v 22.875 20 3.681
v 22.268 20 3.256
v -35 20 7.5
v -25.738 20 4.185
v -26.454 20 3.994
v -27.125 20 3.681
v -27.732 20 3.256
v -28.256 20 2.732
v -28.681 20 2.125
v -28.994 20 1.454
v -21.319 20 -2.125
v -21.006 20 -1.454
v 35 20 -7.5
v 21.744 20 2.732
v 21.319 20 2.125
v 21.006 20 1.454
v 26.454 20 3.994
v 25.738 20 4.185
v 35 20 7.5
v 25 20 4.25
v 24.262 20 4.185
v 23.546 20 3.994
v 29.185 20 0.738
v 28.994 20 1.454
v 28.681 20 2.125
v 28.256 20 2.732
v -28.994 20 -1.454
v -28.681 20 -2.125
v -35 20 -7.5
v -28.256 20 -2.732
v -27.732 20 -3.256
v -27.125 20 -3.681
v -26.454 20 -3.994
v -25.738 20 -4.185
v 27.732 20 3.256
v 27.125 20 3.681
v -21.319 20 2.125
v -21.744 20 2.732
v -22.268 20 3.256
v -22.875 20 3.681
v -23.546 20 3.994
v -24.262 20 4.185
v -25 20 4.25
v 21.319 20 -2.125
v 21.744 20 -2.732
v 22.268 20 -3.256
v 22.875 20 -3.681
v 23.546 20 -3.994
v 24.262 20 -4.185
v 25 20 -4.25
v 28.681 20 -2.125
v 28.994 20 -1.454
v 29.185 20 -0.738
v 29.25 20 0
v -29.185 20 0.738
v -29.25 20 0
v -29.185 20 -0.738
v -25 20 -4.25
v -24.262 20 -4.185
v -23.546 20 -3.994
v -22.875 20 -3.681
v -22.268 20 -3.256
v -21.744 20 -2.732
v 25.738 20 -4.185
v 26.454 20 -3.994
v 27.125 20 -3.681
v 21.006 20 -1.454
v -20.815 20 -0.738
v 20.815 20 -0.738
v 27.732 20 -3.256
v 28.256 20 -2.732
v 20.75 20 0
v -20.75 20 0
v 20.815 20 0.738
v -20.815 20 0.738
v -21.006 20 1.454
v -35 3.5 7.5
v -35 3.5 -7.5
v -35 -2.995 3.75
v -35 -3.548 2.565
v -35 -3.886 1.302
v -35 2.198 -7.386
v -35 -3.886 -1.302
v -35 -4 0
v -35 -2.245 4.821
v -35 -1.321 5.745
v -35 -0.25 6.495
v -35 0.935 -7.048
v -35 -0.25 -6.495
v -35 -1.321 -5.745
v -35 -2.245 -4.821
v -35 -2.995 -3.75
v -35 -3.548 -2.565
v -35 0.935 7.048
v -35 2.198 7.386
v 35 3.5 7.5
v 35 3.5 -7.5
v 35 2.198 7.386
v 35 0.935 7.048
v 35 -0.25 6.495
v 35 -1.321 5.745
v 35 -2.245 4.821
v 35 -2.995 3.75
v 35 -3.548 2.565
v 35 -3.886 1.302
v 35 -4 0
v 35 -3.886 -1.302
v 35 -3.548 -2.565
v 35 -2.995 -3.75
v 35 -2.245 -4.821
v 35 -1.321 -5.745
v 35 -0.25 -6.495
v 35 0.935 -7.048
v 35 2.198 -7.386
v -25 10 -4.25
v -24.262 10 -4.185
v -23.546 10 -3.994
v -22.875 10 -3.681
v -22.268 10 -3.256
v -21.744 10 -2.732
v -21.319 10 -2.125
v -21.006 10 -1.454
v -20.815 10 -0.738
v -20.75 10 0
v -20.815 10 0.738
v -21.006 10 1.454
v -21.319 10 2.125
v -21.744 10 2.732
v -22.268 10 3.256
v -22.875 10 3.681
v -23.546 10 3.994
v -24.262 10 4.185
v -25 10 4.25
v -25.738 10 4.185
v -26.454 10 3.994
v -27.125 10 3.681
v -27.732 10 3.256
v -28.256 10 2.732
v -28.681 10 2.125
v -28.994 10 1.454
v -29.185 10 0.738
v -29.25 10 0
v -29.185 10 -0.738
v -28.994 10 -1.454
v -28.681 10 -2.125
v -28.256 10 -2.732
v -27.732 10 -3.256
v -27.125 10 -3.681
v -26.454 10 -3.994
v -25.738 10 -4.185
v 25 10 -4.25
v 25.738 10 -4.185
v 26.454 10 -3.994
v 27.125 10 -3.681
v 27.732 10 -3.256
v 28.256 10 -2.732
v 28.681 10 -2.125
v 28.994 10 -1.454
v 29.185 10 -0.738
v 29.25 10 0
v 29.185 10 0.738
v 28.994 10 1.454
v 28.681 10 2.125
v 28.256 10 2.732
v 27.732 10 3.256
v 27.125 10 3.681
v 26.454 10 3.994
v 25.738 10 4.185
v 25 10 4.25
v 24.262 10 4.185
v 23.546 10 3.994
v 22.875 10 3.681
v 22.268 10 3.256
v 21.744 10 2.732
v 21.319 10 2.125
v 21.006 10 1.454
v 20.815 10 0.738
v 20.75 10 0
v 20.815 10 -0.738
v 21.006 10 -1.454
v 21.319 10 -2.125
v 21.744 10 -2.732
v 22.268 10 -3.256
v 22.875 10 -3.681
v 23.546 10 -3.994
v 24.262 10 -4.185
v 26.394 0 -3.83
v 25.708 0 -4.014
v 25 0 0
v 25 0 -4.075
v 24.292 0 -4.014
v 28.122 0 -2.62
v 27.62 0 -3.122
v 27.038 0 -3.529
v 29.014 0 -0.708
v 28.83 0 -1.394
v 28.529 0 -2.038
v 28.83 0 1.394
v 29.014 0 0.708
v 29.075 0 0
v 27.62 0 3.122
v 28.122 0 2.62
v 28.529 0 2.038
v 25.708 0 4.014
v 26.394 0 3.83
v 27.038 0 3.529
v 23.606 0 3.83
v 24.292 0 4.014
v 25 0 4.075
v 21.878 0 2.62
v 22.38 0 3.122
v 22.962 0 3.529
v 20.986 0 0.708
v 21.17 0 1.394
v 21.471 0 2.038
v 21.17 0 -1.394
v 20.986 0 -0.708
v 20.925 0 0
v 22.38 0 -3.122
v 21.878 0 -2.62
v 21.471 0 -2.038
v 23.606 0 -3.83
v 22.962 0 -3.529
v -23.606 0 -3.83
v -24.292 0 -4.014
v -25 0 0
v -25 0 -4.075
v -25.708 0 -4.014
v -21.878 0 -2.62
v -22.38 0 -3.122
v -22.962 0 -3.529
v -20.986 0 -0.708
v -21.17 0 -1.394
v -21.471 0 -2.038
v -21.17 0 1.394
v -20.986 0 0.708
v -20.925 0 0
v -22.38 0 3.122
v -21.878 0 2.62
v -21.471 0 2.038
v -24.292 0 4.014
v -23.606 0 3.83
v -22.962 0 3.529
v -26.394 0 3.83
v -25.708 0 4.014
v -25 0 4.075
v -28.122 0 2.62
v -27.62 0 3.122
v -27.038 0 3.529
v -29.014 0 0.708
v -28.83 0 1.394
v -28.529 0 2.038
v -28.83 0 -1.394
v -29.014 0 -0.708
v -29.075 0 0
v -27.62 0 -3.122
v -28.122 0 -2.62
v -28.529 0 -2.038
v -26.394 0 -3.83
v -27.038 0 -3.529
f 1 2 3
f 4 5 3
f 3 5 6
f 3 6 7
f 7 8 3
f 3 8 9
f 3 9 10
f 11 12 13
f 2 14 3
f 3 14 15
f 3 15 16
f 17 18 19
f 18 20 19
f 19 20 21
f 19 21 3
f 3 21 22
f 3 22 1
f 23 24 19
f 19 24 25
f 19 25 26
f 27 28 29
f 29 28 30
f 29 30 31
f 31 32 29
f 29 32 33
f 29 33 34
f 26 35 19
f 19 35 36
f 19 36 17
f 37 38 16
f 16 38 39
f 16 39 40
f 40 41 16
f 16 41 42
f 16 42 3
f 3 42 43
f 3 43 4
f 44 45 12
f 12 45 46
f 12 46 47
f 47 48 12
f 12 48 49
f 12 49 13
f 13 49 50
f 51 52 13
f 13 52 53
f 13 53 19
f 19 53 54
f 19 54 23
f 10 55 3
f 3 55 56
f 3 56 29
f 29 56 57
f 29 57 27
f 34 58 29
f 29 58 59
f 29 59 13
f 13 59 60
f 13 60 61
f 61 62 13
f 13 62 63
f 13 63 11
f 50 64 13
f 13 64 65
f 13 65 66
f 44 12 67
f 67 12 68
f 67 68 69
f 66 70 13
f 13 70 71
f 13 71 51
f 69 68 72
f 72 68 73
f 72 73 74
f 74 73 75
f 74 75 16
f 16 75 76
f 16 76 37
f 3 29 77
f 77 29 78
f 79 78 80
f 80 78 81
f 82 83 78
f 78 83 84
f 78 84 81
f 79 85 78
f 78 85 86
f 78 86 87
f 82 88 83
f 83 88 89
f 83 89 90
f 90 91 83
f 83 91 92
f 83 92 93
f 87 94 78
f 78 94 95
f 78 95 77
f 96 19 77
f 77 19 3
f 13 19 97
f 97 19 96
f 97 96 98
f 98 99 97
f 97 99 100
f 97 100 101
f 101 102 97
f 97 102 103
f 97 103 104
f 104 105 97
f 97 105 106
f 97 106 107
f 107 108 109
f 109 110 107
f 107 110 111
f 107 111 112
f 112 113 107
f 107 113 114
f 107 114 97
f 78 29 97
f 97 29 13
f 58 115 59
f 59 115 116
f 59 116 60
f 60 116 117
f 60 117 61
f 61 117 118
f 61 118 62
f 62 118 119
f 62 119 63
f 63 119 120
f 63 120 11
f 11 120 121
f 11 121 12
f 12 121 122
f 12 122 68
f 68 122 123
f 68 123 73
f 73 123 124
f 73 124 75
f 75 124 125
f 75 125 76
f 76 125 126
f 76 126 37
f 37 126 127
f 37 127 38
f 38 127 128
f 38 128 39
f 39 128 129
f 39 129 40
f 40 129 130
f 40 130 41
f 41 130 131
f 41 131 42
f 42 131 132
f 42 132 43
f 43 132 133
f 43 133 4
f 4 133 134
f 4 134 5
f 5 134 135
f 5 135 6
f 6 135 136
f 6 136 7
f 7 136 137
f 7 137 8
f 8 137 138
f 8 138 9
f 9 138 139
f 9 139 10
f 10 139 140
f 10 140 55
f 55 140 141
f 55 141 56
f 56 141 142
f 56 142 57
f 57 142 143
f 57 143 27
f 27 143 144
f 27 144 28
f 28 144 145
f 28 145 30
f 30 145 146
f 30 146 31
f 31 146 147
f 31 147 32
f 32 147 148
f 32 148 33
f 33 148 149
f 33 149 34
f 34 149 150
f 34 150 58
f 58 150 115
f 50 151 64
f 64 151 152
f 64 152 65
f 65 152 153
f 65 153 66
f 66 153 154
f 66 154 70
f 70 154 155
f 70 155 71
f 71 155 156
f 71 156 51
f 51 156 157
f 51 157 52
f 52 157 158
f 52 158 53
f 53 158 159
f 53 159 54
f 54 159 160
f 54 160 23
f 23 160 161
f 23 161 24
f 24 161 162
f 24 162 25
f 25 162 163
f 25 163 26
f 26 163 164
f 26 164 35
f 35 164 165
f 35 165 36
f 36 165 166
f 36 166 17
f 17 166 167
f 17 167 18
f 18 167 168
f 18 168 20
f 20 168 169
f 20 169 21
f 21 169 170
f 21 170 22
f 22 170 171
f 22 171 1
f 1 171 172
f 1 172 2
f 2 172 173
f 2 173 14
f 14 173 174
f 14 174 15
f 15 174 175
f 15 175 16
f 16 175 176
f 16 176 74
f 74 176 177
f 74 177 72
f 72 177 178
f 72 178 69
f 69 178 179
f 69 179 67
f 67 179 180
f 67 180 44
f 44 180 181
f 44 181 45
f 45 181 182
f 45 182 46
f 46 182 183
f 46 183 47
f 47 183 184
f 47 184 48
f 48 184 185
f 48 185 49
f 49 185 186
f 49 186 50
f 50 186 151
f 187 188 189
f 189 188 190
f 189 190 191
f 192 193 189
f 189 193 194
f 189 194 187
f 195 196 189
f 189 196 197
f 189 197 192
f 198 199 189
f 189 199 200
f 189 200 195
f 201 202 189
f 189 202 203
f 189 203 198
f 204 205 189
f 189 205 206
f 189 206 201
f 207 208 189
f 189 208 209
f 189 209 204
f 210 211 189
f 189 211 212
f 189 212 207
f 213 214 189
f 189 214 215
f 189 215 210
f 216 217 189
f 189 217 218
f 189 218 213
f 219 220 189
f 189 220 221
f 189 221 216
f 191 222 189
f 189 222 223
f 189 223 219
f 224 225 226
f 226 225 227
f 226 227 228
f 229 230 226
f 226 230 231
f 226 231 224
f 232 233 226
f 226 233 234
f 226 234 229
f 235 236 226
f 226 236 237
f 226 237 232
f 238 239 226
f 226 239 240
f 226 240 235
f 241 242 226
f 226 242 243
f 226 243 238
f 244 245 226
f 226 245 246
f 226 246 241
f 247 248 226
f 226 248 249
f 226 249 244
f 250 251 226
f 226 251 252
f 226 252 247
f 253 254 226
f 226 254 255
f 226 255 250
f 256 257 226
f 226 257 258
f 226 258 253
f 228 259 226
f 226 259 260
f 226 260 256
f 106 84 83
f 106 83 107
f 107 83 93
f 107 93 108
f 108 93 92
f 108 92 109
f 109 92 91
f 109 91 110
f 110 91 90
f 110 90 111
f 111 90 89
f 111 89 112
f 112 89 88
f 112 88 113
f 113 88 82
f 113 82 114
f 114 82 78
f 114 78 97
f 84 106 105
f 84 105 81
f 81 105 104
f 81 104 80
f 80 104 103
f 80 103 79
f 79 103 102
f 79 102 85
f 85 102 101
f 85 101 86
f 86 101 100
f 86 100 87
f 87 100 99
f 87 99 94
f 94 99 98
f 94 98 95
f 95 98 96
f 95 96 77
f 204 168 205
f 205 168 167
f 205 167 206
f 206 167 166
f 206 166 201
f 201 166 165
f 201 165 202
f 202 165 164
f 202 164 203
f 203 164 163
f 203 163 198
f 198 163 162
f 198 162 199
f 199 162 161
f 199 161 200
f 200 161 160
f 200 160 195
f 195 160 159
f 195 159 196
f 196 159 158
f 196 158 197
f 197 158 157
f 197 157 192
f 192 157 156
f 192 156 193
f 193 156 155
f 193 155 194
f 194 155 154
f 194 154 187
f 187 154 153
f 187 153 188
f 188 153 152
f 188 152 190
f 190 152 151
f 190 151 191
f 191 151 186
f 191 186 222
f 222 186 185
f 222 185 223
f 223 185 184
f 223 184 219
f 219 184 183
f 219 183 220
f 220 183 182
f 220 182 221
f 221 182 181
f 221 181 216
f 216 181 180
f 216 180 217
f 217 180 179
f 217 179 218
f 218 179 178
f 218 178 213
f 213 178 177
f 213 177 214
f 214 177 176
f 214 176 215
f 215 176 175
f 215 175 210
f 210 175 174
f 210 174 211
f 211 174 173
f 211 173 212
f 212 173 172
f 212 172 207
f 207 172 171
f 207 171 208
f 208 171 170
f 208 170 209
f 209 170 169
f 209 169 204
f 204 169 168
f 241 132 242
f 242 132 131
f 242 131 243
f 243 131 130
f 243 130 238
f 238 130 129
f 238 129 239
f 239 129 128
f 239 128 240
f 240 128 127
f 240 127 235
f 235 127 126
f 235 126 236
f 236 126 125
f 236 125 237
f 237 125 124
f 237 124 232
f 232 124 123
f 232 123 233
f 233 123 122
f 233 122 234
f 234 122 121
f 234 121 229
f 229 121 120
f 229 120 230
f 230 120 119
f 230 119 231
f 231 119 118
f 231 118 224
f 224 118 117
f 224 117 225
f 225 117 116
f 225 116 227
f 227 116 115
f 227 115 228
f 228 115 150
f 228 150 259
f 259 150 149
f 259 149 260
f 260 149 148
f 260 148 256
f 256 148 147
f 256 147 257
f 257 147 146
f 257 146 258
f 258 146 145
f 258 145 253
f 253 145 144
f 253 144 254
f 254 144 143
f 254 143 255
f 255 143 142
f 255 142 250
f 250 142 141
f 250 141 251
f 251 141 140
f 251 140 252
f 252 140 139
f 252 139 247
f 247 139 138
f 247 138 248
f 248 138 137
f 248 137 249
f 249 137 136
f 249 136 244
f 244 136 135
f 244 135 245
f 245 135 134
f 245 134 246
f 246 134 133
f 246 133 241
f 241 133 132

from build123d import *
from OCP.BRepFilletAPI import BRepFilletAPI_MakeChamfer

# Parameters (mm, degrees)
SKETCH1_W           = 70
SKETCH1_H           = 15
SKETCH1_R           = 4.25
BOSS_EXTRUDE1_DEPTH = 20
SKETCH2_W           = 70
SKETCH2_H           = 15
BOSS_EXTRUDE2_DEPTH = 4
FILLET1_R           = 7.5
CHAMFER1_SIZE       = 10
CHAMFER1_SIZE2      = 0.174550649


with BuildPart() as part:
    # Sketch1 → Boss-Extrude1 (new body)
    with BuildSketch(Plane(origin=(0, 0, 0), x_dir=(1, 0, 0), z_dir=(0, 1, 0))):
        Rectangle(SKETCH1_W, SKETCH1_H)
        with Locations(Location((-25, 0, 0), (0, 0, 270))):
            Circle(SKETCH1_R, mode=Mode.SUBTRACT)
        with Locations(Location((25, 0, 0), (0, 0, 270))):
            Circle(SKETCH1_R, mode=Mode.SUBTRACT)
    extrude(amount=BOSS_EXTRUDE1_DEPTH)

    # Sketch2 → Boss-Extrude2 (add)
    with BuildSketch(Plane.XZ):
        Rectangle(SKETCH2_W, SKETCH2_H)
    extrude(amount=BOSS_EXTRUDE2_DEPTH)

    # Fillet1
    fillet1_edges = [part.edges().sort_by_distance(p)[0] for p in [
        (0, -4, 7.5),
        (0, -4, -7.5),
    ]]
    fillet(fillet1_edges, radius=FILLET1_R - 0.0001)  # a hair under: the kernel refuses the full size

    # Chamfer1: one chamfer whose edges measure the first distance from different faces: ONE call of the kernel's chamfer builder (chamfer() names one face for all edges)
    chamfer1_edges_1 = [part.edges().sort_by_distance(p)[0] for p in [
        (-25, 0, -4.25),
    ]]
    chamfer1_side_1 = [part.faces().sort_by_distance(p)[0] for p in [
        (-25, 10, -4.25),
    ]]
    chamfer1_edges_2 = [part.edges().sort_by_distance(p)[0] for p in [
        (25, 0, -4.25),
    ]]
    chamfer1_side_2 = [part.faces().sort_by_distance(p)[0] for p in [
        (25, 10, -4.25),
    ]]
    chamfer1 = BRepFilletAPI_MakeChamfer(part.part.solid().wrapped)
    for e in chamfer1_edges_1:
        chamfer1.Add(CHAMFER1_SIZE, CHAMFER1_SIZE2, e.wrapped, chamfer1_side_1[0].wrapped)  # the first distance lies on this face
    for e in chamfer1_edges_2:
        chamfer1.Add(CHAMFER1_SIZE, CHAMFER1_SIZE2, e.wrapped, chamfer1_side_2[0].wrapped)  # the first distance lies on this face
    add(Compound.cast(chamfer1.Shape()), mode=Mode.REPLACE)


solid = part.part
